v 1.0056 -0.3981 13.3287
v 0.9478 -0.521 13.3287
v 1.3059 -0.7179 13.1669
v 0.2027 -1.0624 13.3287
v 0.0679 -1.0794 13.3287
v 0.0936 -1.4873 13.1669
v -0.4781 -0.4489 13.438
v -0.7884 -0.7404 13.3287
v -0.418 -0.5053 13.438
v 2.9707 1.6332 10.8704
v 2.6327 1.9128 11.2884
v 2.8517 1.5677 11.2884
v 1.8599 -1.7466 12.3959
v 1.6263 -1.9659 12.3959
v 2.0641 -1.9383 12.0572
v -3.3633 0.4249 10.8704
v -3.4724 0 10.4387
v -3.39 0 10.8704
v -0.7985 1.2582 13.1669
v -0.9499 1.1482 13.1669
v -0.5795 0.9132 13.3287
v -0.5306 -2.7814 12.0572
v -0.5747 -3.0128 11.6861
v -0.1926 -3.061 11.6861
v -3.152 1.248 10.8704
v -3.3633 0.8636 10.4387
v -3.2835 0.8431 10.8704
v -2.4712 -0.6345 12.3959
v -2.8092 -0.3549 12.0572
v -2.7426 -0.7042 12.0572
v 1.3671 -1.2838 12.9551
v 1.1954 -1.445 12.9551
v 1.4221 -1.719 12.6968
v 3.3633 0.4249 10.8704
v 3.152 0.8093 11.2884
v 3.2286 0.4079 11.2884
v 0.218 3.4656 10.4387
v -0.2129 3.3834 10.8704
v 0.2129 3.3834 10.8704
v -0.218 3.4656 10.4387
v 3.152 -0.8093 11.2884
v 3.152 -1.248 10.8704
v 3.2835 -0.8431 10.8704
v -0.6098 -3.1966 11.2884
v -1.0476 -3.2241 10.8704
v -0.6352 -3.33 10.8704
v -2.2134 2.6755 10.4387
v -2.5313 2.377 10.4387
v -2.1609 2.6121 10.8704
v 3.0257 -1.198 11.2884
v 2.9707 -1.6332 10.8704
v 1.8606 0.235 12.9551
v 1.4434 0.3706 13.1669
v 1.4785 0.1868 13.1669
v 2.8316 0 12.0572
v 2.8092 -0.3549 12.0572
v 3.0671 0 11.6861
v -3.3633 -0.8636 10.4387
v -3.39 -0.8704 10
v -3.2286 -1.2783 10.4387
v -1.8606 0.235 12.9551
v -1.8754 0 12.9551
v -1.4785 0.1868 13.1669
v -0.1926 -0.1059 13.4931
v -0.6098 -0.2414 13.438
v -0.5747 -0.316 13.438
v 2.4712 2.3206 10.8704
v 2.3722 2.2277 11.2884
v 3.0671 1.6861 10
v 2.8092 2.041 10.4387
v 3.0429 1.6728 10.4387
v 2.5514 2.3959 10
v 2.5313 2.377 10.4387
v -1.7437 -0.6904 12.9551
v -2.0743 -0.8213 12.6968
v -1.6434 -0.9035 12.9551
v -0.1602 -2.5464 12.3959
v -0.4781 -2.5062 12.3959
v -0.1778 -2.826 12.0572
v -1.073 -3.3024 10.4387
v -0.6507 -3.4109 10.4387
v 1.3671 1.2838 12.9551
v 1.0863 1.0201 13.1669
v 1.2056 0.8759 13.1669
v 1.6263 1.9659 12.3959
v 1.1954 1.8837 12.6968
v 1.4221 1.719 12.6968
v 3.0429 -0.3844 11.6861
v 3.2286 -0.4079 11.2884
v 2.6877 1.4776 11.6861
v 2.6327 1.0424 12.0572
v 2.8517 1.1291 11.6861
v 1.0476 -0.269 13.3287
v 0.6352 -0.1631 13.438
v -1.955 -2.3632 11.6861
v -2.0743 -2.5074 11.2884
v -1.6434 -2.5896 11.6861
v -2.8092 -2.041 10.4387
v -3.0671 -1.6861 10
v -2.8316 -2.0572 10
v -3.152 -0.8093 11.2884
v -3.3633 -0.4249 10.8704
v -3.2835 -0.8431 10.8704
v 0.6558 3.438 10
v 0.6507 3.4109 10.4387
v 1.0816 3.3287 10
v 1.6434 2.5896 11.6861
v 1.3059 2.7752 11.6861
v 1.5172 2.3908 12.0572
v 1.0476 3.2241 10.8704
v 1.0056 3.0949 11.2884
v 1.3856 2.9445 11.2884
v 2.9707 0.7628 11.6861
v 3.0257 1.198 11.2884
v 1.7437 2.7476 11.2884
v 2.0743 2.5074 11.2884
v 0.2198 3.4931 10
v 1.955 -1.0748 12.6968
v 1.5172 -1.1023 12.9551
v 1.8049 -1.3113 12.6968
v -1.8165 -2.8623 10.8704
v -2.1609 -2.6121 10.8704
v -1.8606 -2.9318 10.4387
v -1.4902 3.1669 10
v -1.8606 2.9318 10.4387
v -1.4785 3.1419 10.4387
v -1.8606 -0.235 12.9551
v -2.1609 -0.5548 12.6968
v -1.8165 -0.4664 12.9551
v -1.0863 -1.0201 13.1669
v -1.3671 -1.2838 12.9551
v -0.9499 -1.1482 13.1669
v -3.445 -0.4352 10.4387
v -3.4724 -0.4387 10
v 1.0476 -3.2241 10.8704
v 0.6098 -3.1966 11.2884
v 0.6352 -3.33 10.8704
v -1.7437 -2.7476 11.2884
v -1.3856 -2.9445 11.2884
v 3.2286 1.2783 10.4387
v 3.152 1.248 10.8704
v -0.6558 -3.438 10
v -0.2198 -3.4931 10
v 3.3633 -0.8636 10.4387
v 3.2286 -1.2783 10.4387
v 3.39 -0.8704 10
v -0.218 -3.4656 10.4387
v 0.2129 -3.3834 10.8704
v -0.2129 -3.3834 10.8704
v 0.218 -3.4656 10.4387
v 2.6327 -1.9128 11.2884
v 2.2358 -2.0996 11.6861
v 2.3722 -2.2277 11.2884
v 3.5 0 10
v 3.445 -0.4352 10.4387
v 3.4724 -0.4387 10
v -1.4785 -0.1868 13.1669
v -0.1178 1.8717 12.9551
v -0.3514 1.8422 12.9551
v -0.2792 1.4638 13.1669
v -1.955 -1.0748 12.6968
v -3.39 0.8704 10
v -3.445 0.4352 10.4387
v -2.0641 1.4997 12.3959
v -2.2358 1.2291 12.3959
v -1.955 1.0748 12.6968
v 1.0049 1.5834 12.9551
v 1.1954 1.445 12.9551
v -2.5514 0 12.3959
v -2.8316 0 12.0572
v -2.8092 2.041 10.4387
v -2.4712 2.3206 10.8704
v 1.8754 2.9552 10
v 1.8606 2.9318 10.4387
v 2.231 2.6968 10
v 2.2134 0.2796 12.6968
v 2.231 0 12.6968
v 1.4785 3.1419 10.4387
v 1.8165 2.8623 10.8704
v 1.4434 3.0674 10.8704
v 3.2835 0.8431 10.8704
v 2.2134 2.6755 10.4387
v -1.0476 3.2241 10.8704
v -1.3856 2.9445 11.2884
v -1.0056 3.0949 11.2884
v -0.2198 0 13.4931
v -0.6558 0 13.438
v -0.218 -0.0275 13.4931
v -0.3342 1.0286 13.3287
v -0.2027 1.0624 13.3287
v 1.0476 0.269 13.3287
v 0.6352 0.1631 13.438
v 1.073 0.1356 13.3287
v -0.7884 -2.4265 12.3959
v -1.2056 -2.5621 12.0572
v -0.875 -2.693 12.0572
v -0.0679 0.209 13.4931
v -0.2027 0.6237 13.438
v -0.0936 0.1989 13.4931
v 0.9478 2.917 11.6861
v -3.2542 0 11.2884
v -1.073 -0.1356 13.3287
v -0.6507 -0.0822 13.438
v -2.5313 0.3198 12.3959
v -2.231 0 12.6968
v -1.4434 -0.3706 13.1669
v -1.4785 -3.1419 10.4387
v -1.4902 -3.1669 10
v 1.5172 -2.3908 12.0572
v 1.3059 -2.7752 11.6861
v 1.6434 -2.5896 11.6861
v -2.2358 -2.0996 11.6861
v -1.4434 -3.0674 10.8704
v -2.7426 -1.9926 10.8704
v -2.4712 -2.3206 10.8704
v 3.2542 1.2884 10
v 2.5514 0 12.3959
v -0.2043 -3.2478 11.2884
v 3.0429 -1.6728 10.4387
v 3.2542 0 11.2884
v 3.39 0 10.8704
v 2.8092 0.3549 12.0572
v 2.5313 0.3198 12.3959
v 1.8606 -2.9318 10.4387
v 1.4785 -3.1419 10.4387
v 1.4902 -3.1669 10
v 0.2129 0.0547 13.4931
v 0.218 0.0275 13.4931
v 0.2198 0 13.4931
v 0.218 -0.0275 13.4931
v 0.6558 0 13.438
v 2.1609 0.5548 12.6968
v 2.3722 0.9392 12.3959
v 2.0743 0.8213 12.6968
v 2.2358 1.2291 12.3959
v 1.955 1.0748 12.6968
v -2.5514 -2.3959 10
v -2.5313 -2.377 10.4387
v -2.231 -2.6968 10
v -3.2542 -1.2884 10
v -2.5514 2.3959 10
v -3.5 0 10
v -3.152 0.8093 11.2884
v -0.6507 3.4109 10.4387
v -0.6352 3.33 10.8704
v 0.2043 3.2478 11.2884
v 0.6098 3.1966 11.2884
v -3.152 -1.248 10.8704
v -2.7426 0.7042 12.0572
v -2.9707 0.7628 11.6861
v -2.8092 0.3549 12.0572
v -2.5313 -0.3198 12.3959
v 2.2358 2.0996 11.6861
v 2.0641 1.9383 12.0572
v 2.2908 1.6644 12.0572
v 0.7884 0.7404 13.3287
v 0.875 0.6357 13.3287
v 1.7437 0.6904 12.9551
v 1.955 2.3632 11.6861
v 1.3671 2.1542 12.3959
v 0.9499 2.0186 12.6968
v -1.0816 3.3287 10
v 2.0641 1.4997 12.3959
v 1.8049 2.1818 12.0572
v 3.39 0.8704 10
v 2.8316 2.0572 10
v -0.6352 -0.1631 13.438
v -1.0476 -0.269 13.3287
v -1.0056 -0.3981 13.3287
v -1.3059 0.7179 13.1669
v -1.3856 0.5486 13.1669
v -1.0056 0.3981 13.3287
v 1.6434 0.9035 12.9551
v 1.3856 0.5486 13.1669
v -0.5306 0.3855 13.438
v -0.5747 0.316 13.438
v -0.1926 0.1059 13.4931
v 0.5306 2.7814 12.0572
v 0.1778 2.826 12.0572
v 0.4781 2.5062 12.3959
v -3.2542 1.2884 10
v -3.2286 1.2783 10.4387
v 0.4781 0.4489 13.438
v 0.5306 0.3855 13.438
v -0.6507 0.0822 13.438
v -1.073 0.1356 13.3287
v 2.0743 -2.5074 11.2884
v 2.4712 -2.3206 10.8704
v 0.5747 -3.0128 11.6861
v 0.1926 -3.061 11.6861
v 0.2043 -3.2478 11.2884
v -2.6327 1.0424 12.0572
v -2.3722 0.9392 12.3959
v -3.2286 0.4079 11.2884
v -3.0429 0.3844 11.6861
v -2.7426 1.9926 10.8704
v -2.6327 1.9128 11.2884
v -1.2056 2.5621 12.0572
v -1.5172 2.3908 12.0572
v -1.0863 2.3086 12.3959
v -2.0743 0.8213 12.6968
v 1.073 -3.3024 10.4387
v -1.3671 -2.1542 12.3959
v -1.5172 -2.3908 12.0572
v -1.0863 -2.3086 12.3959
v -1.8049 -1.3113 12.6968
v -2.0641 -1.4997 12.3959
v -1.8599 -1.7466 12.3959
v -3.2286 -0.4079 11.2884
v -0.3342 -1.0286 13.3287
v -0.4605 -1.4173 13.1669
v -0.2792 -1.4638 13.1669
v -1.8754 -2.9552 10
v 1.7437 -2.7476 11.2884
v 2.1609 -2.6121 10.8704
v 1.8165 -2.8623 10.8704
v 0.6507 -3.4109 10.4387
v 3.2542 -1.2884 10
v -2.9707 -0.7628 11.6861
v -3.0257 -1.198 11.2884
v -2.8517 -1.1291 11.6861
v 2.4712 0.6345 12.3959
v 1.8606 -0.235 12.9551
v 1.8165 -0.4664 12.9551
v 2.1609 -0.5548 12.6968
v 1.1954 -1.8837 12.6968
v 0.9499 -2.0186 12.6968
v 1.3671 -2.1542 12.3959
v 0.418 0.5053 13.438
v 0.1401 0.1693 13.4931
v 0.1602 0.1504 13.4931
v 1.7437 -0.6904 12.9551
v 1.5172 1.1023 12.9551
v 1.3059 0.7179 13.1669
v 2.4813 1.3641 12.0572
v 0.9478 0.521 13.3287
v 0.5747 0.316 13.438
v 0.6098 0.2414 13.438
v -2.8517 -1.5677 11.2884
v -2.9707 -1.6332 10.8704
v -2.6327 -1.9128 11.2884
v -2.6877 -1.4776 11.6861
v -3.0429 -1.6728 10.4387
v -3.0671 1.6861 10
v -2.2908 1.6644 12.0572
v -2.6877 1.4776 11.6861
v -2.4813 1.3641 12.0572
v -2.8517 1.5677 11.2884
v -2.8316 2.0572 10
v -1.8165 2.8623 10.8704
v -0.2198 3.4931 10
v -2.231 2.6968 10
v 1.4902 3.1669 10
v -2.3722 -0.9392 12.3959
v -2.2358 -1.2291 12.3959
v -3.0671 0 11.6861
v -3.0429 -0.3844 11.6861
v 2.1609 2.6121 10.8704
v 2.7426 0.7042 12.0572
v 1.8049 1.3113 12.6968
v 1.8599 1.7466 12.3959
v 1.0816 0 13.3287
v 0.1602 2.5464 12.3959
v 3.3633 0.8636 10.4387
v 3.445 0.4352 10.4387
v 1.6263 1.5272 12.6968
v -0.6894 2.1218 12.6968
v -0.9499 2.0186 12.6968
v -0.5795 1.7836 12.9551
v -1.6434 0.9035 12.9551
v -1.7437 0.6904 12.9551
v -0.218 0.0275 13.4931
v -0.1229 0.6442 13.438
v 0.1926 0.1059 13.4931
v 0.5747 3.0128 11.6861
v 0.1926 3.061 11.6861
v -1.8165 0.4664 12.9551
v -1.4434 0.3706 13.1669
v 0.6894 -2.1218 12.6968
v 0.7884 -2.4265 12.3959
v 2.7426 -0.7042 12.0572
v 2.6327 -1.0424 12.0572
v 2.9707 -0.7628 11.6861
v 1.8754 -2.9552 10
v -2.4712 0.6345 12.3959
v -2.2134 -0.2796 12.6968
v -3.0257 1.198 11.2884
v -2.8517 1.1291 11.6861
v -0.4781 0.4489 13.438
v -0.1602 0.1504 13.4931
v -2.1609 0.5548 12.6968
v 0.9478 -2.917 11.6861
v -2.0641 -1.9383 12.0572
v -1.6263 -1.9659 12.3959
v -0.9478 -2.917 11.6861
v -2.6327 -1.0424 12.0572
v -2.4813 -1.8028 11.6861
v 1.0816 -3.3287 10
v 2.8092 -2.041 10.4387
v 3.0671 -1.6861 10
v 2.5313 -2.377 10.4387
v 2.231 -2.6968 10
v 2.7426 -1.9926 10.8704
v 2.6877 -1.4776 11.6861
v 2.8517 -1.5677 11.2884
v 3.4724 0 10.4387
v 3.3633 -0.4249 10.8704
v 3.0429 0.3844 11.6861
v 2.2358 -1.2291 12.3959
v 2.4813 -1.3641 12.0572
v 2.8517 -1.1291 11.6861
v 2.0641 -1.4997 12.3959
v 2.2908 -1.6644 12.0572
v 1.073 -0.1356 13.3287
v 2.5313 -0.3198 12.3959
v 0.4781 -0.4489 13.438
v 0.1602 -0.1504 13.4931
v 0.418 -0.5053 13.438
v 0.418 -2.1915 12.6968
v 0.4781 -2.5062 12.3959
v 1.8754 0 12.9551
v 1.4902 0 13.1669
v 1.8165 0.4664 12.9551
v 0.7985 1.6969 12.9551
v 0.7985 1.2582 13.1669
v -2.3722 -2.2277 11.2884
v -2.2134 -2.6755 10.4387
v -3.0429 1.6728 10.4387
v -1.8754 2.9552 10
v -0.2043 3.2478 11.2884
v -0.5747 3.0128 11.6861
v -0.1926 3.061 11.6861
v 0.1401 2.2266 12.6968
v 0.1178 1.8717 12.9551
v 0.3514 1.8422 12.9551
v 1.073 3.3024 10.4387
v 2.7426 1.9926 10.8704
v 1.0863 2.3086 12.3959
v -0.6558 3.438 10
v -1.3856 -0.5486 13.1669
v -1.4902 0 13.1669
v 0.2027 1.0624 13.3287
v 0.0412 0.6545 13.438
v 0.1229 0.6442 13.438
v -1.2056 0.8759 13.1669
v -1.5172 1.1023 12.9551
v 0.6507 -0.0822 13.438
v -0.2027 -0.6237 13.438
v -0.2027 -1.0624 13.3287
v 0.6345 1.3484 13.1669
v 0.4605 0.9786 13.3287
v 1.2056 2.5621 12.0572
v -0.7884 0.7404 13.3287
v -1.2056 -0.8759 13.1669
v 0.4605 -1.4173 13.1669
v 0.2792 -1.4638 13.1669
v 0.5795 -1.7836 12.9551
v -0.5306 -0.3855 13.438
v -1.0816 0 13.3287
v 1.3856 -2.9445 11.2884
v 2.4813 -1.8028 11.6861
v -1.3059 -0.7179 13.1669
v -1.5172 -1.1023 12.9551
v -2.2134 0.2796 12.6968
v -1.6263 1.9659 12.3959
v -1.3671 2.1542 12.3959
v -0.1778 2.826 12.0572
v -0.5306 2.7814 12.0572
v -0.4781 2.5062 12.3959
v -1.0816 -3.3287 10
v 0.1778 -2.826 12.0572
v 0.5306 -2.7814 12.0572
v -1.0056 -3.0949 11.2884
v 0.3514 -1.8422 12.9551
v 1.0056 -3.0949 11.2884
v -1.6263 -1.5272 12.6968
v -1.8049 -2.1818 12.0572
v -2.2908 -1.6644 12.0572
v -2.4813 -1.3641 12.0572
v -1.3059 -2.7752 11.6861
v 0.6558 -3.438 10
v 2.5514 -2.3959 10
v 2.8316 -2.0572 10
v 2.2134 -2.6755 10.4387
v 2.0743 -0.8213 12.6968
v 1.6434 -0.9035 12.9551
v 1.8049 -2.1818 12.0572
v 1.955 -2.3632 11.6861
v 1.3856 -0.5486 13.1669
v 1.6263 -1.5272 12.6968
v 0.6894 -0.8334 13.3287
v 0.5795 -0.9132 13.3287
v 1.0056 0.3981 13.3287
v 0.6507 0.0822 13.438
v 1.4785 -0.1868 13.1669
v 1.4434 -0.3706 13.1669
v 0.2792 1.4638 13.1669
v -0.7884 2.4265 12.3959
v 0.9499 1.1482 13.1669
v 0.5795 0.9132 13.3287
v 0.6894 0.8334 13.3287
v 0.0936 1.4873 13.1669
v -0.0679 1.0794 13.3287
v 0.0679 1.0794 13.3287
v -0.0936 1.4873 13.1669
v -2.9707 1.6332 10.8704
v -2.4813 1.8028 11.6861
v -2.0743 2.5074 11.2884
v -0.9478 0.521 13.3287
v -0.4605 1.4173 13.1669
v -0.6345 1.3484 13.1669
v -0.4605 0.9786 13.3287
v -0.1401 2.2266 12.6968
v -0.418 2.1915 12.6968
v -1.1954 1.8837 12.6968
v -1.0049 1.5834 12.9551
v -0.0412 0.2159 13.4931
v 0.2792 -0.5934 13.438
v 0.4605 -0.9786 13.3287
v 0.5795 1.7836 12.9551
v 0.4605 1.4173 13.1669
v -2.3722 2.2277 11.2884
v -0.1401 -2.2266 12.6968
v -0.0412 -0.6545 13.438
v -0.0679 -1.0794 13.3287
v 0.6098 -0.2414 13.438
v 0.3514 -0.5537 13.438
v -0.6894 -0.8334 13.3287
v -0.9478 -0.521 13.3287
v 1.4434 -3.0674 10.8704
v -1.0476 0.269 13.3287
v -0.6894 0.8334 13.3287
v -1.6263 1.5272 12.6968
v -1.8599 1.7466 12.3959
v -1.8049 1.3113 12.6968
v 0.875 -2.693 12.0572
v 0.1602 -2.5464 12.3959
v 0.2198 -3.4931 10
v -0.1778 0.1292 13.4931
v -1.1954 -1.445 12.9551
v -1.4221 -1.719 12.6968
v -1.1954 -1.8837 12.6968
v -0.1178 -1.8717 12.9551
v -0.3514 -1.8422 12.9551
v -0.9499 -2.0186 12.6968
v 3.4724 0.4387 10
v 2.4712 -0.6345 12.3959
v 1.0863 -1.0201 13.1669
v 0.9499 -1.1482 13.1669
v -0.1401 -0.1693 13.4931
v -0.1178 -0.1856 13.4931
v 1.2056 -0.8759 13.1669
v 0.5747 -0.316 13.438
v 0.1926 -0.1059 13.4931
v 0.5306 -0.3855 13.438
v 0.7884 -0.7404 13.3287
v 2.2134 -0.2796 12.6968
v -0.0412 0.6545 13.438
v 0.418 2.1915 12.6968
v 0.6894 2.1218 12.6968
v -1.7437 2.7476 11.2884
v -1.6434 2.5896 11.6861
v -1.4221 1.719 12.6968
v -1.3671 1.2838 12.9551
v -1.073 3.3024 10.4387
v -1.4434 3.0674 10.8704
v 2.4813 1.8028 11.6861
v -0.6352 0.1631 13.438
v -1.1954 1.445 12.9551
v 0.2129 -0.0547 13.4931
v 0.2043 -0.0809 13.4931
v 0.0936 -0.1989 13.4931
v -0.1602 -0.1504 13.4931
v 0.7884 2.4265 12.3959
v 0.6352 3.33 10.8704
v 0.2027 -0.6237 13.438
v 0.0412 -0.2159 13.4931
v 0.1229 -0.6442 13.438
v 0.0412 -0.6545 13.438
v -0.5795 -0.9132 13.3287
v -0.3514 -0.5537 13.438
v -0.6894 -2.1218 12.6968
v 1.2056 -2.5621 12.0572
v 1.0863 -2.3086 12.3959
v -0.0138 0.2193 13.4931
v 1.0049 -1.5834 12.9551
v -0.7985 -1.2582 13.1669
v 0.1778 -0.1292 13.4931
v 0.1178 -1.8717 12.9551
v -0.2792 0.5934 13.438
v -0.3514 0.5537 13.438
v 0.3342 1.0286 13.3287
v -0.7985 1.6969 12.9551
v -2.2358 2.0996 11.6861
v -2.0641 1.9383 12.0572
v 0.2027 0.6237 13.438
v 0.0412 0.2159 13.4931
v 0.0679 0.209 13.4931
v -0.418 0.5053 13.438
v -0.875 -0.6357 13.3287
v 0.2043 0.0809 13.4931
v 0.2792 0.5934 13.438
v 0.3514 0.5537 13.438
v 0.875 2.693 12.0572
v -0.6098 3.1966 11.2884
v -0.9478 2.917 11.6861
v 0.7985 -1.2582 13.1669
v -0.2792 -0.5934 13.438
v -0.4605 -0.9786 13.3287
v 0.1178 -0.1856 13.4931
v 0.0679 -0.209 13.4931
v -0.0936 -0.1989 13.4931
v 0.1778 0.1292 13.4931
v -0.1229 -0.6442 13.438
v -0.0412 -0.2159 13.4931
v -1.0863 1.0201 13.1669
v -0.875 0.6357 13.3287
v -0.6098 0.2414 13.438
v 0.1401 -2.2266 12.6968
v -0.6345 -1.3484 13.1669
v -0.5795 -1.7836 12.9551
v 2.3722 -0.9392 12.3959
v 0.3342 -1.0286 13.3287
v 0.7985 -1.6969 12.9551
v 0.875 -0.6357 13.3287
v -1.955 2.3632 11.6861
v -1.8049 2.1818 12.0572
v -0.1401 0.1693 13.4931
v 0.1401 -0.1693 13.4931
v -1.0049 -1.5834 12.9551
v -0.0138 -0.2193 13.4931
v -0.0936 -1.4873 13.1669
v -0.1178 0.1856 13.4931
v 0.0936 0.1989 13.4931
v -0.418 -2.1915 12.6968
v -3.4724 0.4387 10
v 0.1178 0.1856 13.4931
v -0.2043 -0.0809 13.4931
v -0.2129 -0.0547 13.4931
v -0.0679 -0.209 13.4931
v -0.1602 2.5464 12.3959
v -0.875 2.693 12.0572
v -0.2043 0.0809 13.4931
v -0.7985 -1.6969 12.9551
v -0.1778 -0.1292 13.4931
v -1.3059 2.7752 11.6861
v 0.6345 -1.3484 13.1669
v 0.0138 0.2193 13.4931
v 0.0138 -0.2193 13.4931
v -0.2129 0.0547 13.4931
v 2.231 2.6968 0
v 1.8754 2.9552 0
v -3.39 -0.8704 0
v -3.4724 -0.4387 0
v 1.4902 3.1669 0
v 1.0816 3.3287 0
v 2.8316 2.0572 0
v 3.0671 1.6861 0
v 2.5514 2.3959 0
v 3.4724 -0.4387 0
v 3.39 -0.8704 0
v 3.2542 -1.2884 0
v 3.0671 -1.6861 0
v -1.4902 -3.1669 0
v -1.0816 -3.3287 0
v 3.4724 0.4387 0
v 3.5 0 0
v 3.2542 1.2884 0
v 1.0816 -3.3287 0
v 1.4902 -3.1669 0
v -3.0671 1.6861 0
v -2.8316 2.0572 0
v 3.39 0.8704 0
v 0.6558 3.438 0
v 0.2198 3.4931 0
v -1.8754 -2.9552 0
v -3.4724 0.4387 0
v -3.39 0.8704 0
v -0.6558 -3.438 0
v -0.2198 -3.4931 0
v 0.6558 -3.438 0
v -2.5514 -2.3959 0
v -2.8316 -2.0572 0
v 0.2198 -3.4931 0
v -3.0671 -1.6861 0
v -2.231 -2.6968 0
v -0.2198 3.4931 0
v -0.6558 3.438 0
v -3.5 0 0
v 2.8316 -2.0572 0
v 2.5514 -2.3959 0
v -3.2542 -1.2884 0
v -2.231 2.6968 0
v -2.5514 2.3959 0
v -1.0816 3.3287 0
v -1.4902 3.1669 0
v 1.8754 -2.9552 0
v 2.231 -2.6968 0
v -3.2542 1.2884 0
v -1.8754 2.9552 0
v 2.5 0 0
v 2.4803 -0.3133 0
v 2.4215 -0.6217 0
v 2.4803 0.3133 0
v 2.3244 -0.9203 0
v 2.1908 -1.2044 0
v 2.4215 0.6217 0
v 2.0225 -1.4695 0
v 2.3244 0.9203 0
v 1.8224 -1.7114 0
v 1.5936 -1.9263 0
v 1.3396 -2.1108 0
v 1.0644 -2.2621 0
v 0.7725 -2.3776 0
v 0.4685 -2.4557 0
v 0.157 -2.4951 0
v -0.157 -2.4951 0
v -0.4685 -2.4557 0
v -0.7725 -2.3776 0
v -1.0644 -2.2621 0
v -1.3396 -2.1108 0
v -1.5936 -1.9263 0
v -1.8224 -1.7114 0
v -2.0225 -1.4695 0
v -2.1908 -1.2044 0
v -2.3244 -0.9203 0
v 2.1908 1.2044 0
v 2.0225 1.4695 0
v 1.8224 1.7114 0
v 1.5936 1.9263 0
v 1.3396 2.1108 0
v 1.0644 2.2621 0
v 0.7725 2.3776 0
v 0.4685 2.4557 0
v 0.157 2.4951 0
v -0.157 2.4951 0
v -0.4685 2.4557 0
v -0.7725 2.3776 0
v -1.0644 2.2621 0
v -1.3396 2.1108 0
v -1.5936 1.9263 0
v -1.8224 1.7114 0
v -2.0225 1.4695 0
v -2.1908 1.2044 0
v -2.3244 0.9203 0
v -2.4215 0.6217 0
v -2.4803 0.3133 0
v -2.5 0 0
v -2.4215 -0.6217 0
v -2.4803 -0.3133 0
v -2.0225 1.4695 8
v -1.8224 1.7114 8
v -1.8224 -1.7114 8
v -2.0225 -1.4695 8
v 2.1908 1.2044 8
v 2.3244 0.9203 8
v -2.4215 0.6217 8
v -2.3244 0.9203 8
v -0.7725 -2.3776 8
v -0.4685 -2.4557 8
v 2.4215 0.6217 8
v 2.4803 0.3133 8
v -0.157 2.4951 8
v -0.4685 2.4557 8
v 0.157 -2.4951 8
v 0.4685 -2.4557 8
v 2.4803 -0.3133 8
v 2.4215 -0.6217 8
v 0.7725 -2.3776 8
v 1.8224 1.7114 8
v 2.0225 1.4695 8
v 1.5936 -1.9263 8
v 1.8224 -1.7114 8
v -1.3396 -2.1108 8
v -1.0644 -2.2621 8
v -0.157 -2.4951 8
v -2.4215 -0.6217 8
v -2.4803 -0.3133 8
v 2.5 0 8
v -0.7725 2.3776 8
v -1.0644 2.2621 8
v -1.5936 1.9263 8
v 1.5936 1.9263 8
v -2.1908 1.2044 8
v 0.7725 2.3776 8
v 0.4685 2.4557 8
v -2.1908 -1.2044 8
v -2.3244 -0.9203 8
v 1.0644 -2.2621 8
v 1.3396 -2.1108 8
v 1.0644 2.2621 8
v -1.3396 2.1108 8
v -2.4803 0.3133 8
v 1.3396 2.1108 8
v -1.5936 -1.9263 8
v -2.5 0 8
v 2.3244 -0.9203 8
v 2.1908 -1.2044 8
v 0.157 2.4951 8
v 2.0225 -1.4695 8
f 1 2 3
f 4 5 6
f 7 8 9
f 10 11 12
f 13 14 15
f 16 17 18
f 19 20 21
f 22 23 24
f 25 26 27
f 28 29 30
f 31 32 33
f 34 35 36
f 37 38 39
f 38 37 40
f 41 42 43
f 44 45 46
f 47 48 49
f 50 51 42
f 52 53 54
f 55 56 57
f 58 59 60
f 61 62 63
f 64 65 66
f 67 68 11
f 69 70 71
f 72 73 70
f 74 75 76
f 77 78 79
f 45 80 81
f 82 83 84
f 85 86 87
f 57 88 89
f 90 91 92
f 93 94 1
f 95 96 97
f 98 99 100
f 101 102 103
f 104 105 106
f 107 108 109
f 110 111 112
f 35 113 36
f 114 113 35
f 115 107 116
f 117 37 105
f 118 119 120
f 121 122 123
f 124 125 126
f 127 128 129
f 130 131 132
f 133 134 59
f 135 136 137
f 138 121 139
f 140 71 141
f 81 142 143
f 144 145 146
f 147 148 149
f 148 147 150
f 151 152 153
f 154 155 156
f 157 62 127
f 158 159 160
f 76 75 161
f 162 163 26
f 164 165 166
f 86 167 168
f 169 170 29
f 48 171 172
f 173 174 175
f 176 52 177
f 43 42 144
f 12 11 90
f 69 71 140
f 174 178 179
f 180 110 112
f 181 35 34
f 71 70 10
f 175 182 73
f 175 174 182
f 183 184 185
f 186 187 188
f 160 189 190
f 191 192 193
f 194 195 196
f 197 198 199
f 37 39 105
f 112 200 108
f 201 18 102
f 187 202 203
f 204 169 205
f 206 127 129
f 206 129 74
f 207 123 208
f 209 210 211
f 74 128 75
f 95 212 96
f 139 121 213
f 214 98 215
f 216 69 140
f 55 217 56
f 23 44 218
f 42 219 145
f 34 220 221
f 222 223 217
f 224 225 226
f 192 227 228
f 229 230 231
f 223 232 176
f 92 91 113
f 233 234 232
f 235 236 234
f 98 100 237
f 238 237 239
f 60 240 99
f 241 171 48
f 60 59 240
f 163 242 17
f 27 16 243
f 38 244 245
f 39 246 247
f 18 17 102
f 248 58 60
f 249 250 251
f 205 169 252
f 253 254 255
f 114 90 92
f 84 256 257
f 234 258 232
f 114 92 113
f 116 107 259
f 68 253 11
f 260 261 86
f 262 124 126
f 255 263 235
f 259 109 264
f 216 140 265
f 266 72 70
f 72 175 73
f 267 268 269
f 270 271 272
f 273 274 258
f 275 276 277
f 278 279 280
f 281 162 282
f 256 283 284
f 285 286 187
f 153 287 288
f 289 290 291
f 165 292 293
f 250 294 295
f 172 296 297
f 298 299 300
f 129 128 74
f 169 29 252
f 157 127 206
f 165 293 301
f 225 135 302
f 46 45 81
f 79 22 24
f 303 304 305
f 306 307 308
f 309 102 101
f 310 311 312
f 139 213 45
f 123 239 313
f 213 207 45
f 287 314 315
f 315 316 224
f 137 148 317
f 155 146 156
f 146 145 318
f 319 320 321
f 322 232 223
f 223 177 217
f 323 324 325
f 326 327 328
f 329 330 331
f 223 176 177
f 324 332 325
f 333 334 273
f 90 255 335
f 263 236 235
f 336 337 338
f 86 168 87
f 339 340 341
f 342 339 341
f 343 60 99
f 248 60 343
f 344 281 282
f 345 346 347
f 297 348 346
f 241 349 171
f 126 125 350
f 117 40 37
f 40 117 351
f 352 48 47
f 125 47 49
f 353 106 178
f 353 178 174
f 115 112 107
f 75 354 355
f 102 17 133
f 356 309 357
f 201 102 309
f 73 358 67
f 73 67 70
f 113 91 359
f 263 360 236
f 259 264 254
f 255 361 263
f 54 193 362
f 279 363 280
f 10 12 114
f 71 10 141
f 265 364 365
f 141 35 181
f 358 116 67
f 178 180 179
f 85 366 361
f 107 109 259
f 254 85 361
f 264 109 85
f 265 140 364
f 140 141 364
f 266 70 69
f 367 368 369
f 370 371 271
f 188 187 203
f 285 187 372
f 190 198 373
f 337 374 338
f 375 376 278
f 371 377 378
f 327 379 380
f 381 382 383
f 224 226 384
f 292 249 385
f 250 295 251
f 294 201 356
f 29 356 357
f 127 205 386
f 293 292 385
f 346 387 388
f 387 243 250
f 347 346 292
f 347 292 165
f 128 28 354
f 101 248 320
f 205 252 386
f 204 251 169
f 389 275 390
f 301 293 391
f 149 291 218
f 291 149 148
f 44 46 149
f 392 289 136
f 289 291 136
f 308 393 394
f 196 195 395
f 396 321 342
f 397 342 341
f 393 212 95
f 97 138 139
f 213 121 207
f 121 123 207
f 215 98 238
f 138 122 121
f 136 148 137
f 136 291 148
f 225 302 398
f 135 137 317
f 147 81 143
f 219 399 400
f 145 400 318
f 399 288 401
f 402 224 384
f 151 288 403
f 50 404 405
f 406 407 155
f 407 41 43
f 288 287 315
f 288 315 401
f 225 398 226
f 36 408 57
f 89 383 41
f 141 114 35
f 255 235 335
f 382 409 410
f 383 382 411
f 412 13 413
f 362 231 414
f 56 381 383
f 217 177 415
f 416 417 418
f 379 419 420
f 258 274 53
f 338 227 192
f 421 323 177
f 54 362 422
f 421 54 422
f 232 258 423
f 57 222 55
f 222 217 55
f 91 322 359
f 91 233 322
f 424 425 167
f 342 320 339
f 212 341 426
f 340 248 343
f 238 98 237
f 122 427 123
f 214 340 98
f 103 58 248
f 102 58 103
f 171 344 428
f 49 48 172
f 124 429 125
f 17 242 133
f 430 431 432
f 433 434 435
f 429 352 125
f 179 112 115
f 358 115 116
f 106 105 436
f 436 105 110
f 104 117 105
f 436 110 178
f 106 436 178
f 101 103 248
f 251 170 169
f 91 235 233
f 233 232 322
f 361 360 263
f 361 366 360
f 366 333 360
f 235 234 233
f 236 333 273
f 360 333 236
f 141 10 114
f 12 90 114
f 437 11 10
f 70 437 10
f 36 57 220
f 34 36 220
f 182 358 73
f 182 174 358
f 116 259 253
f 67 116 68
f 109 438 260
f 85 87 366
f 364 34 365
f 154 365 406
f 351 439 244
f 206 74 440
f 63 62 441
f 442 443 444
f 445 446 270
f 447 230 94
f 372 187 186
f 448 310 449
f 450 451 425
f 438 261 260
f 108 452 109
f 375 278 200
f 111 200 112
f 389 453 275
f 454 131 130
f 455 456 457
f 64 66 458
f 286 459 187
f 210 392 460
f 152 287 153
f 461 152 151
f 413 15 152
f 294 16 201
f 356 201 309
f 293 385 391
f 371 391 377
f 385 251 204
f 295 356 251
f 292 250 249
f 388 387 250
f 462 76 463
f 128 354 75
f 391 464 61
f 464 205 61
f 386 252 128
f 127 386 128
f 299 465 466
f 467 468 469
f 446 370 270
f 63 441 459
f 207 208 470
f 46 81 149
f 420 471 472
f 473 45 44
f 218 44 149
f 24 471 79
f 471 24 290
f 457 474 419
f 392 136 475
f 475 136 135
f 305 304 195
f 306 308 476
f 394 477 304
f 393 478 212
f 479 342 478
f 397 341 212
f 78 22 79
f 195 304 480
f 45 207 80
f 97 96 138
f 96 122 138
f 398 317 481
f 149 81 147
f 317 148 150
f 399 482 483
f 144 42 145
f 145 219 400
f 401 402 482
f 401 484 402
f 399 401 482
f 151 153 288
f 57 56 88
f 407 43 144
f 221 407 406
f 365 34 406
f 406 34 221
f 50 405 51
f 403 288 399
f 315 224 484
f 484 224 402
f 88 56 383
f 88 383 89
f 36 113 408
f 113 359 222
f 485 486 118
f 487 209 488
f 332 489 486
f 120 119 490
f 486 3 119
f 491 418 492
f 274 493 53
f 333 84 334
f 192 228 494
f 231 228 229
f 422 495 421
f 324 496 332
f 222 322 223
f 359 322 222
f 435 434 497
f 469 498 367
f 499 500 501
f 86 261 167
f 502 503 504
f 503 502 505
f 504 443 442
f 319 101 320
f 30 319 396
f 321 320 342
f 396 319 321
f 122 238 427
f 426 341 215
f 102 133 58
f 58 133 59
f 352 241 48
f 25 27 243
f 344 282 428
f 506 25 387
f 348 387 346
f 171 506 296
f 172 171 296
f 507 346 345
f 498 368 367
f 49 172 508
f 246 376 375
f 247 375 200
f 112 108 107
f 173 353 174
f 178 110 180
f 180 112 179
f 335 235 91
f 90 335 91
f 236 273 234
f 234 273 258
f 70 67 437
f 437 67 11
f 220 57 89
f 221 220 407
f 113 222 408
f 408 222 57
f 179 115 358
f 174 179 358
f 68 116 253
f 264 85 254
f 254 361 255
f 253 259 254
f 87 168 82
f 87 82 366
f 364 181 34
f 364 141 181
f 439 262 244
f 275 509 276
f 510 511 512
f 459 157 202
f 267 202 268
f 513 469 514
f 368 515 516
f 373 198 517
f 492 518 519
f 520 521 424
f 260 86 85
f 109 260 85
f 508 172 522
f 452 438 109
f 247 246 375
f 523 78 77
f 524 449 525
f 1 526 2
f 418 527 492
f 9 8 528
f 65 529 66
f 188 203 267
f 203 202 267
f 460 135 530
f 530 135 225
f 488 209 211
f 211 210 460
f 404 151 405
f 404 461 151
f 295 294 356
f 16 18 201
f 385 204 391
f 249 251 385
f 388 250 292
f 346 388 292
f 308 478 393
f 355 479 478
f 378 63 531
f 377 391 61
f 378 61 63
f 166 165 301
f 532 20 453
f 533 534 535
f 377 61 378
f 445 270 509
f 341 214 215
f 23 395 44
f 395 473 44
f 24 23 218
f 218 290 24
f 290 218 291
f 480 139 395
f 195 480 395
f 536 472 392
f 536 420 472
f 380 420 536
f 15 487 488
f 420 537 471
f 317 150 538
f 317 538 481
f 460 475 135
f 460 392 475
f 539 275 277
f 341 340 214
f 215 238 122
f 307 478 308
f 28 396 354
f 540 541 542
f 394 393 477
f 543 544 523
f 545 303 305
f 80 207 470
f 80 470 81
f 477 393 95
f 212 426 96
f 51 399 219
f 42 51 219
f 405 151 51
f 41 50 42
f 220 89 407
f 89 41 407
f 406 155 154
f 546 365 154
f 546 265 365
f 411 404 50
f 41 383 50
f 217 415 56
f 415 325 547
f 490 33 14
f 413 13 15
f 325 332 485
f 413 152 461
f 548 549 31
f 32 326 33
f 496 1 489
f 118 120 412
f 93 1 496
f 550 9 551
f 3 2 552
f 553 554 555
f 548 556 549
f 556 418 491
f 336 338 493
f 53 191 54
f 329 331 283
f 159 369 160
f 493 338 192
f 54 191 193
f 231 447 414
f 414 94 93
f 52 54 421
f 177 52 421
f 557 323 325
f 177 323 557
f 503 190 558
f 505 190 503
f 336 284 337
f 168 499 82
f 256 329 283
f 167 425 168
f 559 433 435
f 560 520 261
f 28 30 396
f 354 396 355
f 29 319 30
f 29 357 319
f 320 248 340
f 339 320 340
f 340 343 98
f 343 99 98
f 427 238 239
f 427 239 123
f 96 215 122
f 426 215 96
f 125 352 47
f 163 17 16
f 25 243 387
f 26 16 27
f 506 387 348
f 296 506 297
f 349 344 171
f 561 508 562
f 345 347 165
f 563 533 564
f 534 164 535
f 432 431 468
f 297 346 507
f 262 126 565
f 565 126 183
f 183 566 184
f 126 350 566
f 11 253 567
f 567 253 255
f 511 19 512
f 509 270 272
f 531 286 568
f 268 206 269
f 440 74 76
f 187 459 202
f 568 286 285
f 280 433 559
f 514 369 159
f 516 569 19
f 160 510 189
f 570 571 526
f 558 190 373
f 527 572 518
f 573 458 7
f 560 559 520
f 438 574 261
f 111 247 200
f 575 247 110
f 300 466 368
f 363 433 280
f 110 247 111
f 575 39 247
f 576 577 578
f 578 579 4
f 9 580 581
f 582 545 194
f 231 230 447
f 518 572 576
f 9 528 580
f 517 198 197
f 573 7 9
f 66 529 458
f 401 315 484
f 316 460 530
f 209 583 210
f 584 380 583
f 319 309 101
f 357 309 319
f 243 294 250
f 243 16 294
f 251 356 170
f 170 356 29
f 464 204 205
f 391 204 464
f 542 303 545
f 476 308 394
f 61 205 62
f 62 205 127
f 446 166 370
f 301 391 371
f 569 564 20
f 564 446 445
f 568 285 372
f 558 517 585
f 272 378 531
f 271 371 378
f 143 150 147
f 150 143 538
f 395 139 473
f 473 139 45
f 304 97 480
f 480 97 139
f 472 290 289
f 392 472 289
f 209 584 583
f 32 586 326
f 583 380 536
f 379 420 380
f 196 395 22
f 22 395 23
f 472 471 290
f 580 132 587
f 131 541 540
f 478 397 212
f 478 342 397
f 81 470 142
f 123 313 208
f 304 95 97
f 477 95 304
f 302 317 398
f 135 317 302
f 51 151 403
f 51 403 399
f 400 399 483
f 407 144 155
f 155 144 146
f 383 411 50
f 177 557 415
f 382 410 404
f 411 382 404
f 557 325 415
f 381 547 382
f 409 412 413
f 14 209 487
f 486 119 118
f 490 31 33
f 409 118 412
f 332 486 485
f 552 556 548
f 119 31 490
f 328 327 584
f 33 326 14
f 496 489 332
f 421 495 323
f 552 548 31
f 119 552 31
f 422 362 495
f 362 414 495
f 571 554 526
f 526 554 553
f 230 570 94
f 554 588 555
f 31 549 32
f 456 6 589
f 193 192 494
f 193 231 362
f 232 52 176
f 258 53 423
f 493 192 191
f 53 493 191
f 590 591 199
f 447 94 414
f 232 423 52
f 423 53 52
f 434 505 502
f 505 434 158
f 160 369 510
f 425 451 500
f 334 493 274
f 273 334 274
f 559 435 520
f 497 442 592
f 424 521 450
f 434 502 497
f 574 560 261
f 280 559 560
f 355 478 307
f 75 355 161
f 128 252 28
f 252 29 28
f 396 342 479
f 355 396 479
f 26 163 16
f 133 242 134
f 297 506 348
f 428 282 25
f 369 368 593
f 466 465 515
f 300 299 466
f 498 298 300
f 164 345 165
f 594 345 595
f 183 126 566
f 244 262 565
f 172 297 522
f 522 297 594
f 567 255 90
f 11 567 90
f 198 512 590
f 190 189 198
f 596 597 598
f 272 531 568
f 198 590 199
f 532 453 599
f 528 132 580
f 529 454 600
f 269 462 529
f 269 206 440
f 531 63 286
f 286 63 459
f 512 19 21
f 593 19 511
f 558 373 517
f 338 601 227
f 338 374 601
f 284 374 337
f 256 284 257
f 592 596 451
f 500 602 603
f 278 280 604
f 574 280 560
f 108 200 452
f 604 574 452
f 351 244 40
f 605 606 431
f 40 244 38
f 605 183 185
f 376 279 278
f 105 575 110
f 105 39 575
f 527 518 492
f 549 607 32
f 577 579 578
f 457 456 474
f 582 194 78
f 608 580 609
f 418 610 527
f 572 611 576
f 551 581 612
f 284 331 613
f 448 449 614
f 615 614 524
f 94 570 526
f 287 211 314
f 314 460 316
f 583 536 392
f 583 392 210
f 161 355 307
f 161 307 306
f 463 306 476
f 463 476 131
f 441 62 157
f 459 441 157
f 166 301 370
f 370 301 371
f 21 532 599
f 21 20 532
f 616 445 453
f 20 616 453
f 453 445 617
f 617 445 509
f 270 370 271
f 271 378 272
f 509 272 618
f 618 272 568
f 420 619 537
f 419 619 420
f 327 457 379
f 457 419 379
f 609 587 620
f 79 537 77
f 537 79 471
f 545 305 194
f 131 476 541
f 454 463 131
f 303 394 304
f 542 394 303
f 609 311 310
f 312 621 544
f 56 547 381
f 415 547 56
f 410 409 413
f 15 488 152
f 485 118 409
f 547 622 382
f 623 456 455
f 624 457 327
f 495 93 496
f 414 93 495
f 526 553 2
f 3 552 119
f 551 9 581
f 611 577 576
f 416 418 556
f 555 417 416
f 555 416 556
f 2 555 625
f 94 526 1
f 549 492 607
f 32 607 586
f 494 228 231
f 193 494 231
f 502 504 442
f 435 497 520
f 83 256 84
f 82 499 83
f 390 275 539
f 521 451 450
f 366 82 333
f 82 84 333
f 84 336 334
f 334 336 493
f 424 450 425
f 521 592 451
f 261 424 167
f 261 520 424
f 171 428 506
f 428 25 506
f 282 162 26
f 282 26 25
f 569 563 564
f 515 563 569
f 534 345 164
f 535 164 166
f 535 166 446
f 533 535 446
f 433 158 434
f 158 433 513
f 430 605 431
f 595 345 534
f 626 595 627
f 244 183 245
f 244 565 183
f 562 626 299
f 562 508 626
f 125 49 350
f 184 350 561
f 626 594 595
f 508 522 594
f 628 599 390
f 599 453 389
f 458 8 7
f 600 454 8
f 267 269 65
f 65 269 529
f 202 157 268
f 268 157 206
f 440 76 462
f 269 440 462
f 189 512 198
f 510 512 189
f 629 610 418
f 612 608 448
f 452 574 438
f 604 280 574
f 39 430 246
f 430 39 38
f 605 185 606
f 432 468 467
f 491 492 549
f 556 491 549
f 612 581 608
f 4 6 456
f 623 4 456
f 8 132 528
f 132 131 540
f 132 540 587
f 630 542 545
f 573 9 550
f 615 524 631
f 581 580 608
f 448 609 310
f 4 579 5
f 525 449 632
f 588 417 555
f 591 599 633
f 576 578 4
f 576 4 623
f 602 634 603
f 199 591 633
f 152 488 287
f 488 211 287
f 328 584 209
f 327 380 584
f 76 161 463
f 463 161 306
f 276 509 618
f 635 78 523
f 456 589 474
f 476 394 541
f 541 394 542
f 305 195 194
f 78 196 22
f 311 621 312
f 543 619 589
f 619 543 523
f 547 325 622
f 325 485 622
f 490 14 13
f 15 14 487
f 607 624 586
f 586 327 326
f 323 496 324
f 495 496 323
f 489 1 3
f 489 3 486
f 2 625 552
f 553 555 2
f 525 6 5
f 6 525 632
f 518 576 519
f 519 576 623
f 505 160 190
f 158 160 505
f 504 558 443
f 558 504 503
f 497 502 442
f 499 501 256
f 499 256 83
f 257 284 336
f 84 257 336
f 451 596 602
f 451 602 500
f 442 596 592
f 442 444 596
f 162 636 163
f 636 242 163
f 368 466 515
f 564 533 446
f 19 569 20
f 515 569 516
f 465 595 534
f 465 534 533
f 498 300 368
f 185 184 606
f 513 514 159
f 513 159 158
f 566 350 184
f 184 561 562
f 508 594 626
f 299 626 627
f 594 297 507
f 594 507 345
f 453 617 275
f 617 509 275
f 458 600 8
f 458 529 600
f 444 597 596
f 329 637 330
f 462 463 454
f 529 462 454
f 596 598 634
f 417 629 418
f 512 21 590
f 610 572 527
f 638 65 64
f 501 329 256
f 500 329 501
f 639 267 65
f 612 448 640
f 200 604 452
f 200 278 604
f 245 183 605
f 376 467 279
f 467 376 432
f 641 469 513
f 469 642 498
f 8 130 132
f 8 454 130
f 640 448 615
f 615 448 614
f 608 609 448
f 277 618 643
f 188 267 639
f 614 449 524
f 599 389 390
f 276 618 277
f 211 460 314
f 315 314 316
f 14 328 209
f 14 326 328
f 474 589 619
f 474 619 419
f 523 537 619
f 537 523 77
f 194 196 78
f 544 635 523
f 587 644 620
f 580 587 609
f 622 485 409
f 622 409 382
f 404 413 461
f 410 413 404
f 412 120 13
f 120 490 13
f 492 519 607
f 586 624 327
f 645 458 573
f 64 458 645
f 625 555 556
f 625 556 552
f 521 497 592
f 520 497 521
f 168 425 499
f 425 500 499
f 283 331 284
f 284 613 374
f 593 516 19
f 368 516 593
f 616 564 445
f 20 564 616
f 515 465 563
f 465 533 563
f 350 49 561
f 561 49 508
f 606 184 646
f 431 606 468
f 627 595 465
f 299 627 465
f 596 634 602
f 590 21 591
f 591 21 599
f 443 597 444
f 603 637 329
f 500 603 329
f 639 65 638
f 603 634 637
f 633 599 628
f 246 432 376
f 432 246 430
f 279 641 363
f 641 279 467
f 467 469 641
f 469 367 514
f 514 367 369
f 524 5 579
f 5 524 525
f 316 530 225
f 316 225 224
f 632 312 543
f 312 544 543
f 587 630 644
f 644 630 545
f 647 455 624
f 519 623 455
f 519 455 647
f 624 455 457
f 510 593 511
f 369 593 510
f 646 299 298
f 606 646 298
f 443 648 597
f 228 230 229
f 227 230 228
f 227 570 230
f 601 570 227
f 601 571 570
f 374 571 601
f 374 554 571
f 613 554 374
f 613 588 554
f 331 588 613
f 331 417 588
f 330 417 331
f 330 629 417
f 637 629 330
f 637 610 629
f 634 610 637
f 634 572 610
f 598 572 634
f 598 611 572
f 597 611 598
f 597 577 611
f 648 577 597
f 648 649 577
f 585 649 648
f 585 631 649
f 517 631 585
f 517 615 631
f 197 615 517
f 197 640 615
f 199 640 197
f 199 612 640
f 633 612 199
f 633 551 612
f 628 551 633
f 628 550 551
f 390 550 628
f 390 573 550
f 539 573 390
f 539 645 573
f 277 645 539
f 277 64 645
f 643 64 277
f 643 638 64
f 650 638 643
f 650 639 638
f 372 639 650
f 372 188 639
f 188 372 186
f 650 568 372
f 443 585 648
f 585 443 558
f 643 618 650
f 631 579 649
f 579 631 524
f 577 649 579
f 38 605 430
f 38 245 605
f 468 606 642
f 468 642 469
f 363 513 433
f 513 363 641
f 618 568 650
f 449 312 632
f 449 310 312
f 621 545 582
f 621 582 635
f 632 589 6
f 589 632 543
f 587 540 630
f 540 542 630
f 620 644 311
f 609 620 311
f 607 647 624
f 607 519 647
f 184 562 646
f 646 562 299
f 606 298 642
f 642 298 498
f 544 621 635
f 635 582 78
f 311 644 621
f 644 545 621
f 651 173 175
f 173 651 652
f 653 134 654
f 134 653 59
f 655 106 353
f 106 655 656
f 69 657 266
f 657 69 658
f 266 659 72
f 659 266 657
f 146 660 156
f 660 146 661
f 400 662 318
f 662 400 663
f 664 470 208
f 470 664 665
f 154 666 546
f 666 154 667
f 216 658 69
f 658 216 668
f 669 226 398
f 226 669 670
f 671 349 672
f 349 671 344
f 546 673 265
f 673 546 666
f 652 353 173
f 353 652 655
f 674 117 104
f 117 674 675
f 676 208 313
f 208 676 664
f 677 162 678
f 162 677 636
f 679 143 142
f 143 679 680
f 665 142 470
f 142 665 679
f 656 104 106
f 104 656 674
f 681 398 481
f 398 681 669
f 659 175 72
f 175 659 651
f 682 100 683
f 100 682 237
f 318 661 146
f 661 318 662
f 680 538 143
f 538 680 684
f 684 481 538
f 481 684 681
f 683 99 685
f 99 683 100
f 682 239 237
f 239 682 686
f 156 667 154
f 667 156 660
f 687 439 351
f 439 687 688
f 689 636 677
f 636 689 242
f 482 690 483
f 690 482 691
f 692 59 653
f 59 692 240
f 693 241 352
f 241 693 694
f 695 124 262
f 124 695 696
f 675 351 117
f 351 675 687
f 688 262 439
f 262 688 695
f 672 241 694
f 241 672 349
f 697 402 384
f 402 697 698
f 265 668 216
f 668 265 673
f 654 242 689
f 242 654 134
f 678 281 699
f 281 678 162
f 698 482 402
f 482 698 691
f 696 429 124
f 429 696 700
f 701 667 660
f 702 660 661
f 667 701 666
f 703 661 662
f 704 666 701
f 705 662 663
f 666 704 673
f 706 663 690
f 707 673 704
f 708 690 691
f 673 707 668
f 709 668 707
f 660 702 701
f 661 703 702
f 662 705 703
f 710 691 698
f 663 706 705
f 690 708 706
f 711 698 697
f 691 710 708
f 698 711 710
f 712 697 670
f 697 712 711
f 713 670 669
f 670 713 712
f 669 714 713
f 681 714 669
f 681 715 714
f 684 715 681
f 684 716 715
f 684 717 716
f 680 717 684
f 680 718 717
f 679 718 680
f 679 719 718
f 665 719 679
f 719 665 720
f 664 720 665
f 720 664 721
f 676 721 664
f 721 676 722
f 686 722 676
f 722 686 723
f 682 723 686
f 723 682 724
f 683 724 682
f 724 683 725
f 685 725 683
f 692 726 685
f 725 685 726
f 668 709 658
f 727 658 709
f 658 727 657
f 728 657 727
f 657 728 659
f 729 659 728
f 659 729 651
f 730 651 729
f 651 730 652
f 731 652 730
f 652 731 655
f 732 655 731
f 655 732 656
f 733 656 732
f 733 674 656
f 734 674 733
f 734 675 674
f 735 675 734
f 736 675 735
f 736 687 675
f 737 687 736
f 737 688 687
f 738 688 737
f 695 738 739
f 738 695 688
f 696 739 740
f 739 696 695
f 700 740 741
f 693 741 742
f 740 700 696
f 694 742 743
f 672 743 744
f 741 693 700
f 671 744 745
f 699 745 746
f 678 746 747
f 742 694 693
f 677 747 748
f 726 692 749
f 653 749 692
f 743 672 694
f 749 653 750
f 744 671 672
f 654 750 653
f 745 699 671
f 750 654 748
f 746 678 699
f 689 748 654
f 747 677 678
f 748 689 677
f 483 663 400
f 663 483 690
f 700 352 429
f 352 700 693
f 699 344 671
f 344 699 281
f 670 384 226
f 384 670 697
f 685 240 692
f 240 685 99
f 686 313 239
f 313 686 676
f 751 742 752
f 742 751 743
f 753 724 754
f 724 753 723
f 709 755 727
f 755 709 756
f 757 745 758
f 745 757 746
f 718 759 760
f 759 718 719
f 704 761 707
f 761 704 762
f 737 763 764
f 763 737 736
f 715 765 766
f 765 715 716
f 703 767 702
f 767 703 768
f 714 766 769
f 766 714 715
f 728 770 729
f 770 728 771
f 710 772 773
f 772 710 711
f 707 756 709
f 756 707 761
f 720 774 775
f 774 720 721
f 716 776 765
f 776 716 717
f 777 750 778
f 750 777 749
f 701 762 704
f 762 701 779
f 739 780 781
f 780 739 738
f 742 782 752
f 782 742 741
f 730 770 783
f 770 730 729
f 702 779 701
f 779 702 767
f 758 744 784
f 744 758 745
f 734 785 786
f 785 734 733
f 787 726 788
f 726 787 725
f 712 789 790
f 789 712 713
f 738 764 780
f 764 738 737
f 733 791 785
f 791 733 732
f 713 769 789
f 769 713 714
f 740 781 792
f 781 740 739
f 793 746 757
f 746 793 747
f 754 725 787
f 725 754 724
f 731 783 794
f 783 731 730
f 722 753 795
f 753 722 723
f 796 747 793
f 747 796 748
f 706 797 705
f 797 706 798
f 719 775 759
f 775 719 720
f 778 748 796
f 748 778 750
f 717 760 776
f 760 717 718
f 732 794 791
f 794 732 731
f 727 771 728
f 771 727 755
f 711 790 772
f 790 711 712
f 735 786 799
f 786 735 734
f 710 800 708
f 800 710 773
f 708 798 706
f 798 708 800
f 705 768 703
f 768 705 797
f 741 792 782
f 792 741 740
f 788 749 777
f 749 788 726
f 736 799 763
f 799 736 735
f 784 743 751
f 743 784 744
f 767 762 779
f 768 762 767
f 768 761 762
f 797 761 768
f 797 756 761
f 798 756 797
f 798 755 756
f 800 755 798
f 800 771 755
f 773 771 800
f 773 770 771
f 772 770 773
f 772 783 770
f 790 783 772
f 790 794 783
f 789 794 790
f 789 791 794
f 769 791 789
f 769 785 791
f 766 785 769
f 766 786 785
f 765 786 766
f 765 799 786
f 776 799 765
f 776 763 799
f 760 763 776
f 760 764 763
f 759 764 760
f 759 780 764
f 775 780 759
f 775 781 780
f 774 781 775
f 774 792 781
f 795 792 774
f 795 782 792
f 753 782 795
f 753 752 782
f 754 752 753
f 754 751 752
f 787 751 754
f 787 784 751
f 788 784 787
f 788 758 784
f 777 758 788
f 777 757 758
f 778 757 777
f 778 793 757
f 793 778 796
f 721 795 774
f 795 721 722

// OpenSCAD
$fn=50;

diameter=5;
height=8;
wall=2;



difference(){

     union(){
          translate([0, 0, height+wall]) {
               sphere(d=diameter+wall);
          }
          cylinder(h=height+wall, d=diameter+wall, center=false);
     }
     cylinder(h=height, d=diameter, center=false);

}
